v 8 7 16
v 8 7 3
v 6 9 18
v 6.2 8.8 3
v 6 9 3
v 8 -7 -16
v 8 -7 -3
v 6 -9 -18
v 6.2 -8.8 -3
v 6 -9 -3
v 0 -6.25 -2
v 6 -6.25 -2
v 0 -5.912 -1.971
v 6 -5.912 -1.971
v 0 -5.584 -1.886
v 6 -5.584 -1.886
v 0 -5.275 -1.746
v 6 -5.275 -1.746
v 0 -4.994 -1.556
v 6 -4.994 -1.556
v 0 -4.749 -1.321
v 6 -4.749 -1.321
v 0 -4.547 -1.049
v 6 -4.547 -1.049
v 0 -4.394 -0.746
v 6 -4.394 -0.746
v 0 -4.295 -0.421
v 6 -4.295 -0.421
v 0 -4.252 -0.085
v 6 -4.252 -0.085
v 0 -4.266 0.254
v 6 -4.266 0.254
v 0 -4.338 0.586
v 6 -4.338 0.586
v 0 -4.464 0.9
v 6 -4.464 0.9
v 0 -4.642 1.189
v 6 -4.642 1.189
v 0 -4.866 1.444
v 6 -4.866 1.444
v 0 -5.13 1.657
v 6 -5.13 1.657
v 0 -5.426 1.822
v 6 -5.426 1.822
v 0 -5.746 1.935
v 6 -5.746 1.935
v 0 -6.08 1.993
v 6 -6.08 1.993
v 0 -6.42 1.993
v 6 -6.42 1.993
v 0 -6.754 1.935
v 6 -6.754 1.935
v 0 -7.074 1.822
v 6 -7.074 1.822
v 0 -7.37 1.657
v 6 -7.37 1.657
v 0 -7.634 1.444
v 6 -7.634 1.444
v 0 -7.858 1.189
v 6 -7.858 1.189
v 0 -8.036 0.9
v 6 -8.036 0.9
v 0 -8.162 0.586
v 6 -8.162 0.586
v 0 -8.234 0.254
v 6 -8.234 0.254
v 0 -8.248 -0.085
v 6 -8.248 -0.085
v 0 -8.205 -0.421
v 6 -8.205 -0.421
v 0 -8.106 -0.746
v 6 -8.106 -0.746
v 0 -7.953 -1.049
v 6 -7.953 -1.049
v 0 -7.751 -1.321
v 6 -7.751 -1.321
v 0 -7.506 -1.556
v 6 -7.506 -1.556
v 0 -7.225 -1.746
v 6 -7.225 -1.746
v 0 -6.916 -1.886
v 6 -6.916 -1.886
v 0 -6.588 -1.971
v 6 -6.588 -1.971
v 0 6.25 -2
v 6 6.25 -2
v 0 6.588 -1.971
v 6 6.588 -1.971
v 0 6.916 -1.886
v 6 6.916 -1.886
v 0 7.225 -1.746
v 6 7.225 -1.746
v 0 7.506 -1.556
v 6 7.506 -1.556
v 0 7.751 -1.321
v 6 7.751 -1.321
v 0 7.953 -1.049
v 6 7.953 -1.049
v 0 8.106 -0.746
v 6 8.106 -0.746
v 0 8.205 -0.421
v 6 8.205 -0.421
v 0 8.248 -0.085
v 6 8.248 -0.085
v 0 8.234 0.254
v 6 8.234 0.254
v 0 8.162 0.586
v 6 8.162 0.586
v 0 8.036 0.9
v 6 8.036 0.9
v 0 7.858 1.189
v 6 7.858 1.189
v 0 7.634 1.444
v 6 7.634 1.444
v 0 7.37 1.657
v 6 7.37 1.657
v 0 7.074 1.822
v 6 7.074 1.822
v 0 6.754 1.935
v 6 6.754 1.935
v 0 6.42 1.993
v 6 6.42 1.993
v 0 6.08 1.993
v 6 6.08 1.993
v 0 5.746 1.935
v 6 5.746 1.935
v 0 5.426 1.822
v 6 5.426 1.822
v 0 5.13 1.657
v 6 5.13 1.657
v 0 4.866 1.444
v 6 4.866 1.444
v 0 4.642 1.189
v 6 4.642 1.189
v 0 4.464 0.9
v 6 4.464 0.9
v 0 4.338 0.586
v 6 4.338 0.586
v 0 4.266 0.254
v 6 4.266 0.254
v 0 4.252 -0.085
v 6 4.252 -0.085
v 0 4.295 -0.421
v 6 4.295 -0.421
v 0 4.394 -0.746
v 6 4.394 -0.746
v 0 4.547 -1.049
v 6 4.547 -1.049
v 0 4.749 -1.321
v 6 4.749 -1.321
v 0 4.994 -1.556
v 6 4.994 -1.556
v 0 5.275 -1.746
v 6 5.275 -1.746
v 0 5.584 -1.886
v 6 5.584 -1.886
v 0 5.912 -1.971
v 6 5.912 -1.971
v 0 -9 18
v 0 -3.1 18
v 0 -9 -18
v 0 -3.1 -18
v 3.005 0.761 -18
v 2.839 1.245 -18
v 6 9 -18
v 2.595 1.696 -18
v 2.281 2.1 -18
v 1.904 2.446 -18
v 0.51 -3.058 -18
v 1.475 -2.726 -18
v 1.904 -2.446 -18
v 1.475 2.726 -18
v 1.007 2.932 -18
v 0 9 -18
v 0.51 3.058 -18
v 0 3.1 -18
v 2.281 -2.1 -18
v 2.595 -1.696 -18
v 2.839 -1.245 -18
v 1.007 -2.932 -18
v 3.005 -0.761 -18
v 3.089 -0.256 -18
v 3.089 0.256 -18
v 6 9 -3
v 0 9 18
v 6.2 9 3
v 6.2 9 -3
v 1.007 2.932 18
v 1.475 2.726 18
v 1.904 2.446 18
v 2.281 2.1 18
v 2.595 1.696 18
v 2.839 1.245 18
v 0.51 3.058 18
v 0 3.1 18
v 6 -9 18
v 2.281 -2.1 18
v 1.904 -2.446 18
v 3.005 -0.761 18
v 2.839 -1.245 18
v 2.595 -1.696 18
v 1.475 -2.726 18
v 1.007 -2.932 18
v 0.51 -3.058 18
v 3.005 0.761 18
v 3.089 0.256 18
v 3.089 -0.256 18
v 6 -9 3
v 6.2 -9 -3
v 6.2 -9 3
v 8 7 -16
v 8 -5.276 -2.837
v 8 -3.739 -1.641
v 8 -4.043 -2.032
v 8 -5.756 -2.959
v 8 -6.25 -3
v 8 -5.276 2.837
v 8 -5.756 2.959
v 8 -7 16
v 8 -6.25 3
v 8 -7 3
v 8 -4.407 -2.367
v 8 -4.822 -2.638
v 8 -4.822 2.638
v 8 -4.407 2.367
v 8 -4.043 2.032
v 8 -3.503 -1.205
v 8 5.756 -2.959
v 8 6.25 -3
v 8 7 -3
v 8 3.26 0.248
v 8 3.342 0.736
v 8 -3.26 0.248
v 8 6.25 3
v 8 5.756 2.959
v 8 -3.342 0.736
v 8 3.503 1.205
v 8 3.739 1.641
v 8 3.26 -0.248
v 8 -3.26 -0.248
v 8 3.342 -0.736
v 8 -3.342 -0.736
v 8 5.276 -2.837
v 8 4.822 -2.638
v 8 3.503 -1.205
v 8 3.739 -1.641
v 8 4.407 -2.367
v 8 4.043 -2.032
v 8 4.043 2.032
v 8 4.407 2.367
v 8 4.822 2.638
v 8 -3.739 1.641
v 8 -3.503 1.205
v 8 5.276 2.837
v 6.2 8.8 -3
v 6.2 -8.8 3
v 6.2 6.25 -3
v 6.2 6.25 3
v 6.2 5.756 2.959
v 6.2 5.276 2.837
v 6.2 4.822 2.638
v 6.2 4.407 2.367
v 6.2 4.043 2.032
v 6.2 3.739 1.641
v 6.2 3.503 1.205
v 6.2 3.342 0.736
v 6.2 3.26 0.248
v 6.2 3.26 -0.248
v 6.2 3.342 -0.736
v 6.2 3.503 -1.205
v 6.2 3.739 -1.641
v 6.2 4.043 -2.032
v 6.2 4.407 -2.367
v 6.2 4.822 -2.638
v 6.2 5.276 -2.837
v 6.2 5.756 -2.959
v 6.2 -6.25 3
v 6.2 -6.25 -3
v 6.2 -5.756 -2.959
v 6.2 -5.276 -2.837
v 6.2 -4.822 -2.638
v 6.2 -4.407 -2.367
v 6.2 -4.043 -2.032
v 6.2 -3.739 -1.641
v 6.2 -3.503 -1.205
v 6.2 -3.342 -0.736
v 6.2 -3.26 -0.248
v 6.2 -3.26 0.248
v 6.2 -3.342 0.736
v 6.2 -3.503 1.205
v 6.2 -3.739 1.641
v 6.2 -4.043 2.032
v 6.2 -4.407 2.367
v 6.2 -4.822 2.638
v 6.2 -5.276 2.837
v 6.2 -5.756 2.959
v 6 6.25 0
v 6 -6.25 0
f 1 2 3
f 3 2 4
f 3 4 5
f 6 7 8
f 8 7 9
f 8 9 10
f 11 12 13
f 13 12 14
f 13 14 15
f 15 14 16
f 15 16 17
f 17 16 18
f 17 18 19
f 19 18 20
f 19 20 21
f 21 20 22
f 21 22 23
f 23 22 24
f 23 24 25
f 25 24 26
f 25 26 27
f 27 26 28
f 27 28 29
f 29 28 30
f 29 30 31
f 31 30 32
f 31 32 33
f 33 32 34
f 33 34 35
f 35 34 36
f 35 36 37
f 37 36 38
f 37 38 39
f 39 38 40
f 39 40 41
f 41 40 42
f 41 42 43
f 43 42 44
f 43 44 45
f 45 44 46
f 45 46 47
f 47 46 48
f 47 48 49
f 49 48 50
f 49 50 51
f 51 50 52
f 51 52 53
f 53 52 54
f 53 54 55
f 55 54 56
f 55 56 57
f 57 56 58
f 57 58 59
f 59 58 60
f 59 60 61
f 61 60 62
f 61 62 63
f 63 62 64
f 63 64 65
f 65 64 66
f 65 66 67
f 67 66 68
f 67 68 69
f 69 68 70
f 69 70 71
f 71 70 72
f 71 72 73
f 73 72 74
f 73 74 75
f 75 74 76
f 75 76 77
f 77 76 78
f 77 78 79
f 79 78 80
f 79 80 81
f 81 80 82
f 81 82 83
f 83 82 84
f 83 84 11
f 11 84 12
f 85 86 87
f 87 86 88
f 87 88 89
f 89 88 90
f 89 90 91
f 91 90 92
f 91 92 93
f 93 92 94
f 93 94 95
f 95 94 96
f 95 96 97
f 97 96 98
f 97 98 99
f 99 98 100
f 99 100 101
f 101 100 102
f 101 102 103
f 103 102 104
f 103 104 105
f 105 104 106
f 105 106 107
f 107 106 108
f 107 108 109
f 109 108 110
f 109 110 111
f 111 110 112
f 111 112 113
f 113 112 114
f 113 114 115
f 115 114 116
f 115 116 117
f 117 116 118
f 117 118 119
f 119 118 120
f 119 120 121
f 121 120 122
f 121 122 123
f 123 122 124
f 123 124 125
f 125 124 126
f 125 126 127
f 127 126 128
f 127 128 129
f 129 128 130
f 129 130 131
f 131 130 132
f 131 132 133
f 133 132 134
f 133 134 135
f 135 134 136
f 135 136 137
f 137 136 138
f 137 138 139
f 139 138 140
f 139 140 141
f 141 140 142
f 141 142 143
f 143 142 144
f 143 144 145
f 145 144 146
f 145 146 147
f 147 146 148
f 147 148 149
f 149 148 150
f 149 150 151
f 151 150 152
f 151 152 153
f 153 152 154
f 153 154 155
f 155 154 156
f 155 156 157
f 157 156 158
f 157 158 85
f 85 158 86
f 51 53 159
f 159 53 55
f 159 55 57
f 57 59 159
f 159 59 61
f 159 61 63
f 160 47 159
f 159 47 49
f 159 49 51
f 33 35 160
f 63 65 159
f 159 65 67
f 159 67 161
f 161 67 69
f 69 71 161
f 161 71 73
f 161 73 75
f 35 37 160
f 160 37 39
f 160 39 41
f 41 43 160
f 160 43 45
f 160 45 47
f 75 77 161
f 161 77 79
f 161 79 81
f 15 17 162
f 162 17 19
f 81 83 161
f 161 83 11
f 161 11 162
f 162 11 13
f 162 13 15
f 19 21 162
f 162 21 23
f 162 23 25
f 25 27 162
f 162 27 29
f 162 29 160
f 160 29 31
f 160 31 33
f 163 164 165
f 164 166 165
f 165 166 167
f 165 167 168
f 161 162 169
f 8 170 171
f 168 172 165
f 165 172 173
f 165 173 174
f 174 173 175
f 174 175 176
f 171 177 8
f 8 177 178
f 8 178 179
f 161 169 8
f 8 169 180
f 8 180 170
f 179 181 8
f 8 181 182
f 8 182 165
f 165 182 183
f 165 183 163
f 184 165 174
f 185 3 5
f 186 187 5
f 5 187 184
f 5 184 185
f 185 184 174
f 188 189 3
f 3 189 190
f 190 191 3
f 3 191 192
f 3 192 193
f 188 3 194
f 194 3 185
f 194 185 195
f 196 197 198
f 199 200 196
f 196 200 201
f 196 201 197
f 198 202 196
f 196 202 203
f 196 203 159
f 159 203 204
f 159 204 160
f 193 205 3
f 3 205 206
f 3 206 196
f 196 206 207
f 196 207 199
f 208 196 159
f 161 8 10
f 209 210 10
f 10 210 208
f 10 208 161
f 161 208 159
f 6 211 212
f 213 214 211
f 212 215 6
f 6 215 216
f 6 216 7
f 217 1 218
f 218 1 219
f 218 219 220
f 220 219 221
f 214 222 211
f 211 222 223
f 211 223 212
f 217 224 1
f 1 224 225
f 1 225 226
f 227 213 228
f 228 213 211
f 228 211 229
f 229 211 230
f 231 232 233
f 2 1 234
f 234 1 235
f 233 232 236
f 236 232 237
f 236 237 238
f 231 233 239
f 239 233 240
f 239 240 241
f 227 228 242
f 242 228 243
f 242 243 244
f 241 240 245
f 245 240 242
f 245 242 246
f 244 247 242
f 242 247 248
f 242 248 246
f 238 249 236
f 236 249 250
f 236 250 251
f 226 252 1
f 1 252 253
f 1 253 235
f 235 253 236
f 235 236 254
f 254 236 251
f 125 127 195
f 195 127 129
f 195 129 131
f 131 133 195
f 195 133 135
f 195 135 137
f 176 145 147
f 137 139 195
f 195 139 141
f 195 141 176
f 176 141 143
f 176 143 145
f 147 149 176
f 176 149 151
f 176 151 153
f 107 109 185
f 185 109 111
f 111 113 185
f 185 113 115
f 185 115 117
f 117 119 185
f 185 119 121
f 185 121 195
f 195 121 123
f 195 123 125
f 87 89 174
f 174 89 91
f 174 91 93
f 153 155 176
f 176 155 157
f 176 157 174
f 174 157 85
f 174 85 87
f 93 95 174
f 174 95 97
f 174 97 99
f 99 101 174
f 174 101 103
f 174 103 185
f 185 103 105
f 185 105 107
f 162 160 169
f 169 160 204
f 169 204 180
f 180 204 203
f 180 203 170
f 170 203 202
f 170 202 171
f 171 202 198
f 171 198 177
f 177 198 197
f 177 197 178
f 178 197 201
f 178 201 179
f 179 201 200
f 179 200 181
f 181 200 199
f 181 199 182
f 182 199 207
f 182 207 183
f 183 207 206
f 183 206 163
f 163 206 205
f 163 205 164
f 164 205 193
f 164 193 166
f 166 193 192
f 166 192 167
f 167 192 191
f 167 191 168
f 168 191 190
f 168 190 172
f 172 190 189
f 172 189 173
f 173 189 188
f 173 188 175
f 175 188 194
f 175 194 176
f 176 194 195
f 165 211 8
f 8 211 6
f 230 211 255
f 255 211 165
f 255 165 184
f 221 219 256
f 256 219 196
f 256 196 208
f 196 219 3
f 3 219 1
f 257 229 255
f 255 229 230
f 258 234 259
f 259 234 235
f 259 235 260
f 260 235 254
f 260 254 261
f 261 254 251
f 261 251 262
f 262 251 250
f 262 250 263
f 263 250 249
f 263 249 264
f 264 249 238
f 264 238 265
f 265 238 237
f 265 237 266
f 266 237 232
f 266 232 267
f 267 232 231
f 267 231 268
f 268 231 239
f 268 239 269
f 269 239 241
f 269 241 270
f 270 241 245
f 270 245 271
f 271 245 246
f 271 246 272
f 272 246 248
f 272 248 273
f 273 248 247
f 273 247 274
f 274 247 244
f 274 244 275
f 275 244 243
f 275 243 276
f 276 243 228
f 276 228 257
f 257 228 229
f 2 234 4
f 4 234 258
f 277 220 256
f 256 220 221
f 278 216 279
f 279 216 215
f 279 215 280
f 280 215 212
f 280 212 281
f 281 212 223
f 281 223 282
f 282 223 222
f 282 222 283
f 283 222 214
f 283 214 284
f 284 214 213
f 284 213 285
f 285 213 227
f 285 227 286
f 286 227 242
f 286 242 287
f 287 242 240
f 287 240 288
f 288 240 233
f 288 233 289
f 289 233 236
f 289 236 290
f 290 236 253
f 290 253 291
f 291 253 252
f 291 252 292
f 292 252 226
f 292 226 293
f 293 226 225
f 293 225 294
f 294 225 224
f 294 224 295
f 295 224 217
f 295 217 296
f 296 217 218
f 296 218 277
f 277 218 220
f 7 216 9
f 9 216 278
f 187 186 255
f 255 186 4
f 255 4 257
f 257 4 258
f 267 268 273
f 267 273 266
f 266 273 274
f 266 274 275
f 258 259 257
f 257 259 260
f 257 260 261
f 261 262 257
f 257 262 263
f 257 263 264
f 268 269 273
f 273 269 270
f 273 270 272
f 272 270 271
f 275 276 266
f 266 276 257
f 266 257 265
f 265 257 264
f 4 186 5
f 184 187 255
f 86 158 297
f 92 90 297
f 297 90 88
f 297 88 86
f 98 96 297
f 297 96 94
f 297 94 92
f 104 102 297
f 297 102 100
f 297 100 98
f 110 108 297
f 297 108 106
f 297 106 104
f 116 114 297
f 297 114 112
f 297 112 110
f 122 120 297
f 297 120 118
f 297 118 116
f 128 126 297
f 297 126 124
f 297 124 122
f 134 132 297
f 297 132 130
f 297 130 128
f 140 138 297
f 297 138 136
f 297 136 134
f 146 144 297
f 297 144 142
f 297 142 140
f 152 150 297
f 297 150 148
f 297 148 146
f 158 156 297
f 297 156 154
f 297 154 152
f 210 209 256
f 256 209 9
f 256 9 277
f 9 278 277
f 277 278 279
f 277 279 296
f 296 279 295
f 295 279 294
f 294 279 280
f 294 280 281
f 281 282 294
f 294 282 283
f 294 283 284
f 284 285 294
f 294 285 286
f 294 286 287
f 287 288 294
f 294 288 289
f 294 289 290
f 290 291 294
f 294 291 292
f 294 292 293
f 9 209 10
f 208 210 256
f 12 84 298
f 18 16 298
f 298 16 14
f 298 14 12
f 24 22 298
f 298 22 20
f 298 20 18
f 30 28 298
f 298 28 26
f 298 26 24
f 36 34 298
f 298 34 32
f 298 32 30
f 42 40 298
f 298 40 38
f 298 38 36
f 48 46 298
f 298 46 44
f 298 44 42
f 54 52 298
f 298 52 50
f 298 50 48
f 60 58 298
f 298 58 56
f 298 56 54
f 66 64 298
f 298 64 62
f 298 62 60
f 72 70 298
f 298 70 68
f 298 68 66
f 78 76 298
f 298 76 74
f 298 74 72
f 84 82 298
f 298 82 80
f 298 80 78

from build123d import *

# Parameters (mm, degrees)
SKETCH_1_W          = 36
SKETCH_1_H          = 18
EXTRUDE_1_DEPTH     = 8
CUT_EXTRUDE_1_DEPTH = 38.960505792
CHAMFER_1_SIZE      = 2
SKETCH_3_R          = 2
CUT_EXTRUDE_2_DEPTH = 22.656407828
CUT_EXTRUDE_3_DEPTH = 2
EXTRUDE_START       = 0.2
EXTRUDE_2_DEPTH     = 0.2


with BuildPart() as part:
    # Эскиз1 → Бобышка-Вытянуть1 (new body)
    with BuildSketch(Plane(origin=(0, 0, 0), x_dir=(0, 0, -1), z_dir=(1, 0, 0))):
        Rectangle(SKETCH_1_W, SKETCH_1_H)
    extrude(amount=EXTRUDE_1_DEPTH)

    # Эскиз2 → Вырез-Вытянуть1 (cut, through all)
    with BuildSketch(Plane.XY.offset(18)):
        with BuildLine():
            ThreePointArc((0, -3.1), (3.1, 0), (0, 3.1))
            Line((0, 3.1), (0, -3.1))
        make_face()
    extrude(amount=-CUT_EXTRUDE_1_DEPTH, mode=Mode.SUBTRACT)

    # Фаска1
    chamfer_1_edges = [part.edges().sort_by_distance(p)[0] for p in [
        (8, 0, 18),
        (8, -9, 0),
        (8, 0, -18),
        (8, 9, 0),
    ]]
    chamfer(chamfer_1_edges, length=CHAMFER_1_SIZE)

    # Эскиз3 → Вырез-Вытянуть2 (cut, through all)
    with BuildSketch(Plane(origin=(8, 0, 0), x_dir=(0, 0, -1), z_dir=(1, 0, 0))):
        with Locations((0, -6.25)):
            Circle(SKETCH_3_R)
        with Locations((0, 6.25)):
            Circle(SKETCH_3_R)
    extrude(amount=-CUT_EXTRUDE_2_DEPTH, mode=Mode.SUBTRACT)

    # Эскиз4 → Вырез-Вытянуть3 (cut)
    with BuildSketch(Plane(origin=(8, 0, 0), x_dir=(0, 0, -1), z_dir=(1, 0, 0))):
        with BuildLine():
            Line((-3, 9), (-3, 6.25))
            ThreePointArc((-3, 6.25), (0, 3.25), (3, 6.25))
            Line((3, 6.25), (3, 9))
            Line((3, 9), (-3, 9))
        make_face()
        with BuildLine():
            Line((3, -9), (3, -6.25))
            ThreePointArc((3, -6.25), (0, -3.25), (-3, -6.25))
            Line((-3, -6.25), (-3, -9))
            Line((-3, -9), (3, -9))
        make_face()
    extrude(amount=-CUT_EXTRUDE_3_DEPTH, mode=Mode.SUBTRACT)

    # Эскиз5 → Бобышка-Вытянуть2 (add)
    with BuildSketch(Plane(origin=(6, 0, 0), x_dir=(0, 0, -1), z_dir=(1, 0, 0)).offset(EXTRUDE_START)):
        with BuildLine():
            Line((3, 9), (-3, 9))
            Line((-3, 9), (-3, 6.25))
            ThreePointArc((-3, 6.25), (0, 3.25), (3, 6.25))
            Line((3, 6.25), (3, 9))
        make_face()
        with BuildLine():
            Line((-3, -9), (3, -9))
            Line((3, -9), (3, -6.25))
            ThreePointArc((3, -6.25), (0, -3.25), (-3, -6.25))
            Line((-3, -6.25), (-3, -9))
        make_face()
    extrude(amount=-EXTRUDE_2_DEPTH)


solid = part.part
